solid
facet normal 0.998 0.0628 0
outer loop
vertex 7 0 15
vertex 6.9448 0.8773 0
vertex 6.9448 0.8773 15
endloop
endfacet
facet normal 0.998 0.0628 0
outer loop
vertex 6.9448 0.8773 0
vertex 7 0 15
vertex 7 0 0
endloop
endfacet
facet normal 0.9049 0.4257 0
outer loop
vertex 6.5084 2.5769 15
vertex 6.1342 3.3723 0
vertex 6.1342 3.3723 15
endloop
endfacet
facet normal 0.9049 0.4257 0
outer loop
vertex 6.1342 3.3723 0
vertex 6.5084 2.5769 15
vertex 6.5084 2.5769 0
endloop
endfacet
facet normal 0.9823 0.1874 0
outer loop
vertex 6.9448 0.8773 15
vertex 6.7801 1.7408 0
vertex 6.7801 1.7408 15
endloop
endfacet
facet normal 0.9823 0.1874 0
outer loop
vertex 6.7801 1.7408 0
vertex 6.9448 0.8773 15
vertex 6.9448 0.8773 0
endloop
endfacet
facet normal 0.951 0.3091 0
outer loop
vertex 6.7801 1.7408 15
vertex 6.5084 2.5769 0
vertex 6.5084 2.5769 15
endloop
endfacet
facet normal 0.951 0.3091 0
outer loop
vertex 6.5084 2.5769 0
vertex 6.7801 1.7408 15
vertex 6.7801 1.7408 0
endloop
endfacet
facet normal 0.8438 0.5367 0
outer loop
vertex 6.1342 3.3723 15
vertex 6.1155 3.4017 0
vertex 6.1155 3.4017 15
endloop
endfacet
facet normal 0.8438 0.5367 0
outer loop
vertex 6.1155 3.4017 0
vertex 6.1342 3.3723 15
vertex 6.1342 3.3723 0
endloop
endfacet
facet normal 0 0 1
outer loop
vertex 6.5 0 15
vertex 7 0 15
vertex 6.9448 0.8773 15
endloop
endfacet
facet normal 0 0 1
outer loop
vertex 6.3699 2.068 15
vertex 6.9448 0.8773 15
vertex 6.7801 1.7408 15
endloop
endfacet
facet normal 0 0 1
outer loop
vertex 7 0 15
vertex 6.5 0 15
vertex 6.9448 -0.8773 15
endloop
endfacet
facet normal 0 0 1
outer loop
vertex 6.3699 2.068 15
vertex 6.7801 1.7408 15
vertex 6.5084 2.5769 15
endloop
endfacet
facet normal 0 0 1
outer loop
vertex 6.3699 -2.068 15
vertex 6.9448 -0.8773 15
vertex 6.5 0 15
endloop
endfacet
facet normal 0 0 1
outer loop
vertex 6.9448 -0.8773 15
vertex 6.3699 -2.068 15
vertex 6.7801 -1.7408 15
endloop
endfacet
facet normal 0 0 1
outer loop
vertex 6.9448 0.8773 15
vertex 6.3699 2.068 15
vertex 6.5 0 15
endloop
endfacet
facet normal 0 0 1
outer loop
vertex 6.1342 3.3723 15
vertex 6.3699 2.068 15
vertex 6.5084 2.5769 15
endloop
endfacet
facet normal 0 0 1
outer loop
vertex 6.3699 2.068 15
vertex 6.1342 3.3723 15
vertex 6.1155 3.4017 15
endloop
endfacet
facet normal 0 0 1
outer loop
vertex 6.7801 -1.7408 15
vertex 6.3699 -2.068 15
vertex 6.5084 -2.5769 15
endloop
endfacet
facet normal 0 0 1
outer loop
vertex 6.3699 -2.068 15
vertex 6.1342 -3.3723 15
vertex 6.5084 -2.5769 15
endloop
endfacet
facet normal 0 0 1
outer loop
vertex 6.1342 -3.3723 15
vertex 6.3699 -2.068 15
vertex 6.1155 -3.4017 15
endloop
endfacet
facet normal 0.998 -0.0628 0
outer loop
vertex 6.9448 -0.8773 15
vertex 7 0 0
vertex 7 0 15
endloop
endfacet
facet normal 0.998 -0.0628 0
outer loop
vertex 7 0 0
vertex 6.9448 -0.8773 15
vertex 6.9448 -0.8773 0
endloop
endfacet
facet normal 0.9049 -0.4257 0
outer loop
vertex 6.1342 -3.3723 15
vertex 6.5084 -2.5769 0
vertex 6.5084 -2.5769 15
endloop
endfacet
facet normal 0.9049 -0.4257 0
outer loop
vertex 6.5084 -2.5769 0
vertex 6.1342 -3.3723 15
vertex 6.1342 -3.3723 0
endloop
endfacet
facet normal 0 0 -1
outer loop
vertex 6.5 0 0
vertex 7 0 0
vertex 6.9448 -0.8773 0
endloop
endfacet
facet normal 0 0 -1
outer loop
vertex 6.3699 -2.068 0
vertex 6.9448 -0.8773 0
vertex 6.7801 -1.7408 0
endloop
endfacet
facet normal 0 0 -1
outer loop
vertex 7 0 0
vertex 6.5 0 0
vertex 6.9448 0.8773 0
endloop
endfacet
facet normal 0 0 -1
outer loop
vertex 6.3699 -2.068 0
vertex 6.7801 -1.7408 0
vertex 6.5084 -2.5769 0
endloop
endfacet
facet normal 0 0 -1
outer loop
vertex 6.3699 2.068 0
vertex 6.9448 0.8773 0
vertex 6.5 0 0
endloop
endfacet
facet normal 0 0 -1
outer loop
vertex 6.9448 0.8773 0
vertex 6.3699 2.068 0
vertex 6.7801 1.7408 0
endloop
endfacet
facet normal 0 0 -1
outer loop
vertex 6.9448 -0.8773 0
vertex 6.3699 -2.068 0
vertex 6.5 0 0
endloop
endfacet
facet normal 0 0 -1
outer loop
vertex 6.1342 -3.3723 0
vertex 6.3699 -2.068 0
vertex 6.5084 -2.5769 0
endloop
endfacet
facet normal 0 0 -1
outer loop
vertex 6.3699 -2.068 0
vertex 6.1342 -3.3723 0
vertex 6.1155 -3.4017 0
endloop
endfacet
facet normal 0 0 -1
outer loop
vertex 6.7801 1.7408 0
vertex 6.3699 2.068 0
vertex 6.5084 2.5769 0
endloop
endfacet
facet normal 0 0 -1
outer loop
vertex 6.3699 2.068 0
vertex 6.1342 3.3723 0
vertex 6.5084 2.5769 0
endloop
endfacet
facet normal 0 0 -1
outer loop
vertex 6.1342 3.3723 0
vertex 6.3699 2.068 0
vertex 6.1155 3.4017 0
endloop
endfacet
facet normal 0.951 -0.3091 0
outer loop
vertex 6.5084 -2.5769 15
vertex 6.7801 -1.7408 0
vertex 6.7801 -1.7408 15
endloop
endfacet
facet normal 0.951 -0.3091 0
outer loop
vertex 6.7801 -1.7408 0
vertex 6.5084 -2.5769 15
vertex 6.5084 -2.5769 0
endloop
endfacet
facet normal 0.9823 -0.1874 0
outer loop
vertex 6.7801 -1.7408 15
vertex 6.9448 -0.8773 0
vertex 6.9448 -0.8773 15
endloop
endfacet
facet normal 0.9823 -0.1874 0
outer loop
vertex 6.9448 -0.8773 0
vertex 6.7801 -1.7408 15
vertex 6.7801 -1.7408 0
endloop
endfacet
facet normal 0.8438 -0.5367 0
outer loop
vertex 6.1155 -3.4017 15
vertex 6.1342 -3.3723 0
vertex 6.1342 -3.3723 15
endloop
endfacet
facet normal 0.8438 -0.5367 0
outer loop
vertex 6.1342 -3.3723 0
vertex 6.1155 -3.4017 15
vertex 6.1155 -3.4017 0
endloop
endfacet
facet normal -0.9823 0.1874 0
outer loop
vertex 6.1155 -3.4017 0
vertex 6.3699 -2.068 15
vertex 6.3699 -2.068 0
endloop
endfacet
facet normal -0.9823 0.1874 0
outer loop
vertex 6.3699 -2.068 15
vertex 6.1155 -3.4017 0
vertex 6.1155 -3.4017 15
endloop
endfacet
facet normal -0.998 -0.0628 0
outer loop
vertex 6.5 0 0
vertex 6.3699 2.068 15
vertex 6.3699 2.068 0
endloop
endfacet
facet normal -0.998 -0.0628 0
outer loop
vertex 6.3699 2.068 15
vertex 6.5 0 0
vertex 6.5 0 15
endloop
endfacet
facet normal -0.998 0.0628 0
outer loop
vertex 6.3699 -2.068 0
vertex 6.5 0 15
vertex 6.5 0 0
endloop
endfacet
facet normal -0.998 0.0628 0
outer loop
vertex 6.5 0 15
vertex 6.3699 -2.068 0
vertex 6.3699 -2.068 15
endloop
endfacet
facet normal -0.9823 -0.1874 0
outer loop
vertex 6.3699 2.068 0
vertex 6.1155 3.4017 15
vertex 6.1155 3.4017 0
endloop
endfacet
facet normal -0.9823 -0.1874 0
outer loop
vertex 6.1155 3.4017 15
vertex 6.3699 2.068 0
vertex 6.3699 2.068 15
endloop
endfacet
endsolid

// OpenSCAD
$fn = 50;


difference() {
	union() {
		cylinder(h = 15, r = 7.0000000000);
		translate(v = [-13.0000000000, 0, 0]) {
			cylinder(h = 15, r = 7.0000000000);
		}
	}
	union() {
		cylinder(h = 15, r = 3.2500000000);
		cylinder(h = 15, r = 1.8000000000);
		cylinder(h = 15, r = 1.8000000000);
		cylinder(h = 15, r = 1.8000000000);
		translate(v = [-17.5000000000, 0, 0]) {
			hull() {
				translate(v = [-3.7500000000, 0.0000000000, 0]) {
					cylinder(h = 15, r = 7.5000000000);
				}
				translate(v = [3.7500000000, 0.0000000000, 0]) {
					cylinder(h = 15, r = 7.5000000000);
				}
				translate(v = [-3.7500000000, -0.0000000000, 0]) {
					cylinder(h = 15, r = 7.5000000000);
				}
				translate(v = [3.7500000000, -0.0000000000, 0]) {
					cylinder(h = 15, r = 7.5000000000);
				}
			}
		}
		translate(v = [-10.0000000000, 0, 0.0000000000]) {
			cylinder(h = 15, r = 16.5000000000);
		}
	}
}
